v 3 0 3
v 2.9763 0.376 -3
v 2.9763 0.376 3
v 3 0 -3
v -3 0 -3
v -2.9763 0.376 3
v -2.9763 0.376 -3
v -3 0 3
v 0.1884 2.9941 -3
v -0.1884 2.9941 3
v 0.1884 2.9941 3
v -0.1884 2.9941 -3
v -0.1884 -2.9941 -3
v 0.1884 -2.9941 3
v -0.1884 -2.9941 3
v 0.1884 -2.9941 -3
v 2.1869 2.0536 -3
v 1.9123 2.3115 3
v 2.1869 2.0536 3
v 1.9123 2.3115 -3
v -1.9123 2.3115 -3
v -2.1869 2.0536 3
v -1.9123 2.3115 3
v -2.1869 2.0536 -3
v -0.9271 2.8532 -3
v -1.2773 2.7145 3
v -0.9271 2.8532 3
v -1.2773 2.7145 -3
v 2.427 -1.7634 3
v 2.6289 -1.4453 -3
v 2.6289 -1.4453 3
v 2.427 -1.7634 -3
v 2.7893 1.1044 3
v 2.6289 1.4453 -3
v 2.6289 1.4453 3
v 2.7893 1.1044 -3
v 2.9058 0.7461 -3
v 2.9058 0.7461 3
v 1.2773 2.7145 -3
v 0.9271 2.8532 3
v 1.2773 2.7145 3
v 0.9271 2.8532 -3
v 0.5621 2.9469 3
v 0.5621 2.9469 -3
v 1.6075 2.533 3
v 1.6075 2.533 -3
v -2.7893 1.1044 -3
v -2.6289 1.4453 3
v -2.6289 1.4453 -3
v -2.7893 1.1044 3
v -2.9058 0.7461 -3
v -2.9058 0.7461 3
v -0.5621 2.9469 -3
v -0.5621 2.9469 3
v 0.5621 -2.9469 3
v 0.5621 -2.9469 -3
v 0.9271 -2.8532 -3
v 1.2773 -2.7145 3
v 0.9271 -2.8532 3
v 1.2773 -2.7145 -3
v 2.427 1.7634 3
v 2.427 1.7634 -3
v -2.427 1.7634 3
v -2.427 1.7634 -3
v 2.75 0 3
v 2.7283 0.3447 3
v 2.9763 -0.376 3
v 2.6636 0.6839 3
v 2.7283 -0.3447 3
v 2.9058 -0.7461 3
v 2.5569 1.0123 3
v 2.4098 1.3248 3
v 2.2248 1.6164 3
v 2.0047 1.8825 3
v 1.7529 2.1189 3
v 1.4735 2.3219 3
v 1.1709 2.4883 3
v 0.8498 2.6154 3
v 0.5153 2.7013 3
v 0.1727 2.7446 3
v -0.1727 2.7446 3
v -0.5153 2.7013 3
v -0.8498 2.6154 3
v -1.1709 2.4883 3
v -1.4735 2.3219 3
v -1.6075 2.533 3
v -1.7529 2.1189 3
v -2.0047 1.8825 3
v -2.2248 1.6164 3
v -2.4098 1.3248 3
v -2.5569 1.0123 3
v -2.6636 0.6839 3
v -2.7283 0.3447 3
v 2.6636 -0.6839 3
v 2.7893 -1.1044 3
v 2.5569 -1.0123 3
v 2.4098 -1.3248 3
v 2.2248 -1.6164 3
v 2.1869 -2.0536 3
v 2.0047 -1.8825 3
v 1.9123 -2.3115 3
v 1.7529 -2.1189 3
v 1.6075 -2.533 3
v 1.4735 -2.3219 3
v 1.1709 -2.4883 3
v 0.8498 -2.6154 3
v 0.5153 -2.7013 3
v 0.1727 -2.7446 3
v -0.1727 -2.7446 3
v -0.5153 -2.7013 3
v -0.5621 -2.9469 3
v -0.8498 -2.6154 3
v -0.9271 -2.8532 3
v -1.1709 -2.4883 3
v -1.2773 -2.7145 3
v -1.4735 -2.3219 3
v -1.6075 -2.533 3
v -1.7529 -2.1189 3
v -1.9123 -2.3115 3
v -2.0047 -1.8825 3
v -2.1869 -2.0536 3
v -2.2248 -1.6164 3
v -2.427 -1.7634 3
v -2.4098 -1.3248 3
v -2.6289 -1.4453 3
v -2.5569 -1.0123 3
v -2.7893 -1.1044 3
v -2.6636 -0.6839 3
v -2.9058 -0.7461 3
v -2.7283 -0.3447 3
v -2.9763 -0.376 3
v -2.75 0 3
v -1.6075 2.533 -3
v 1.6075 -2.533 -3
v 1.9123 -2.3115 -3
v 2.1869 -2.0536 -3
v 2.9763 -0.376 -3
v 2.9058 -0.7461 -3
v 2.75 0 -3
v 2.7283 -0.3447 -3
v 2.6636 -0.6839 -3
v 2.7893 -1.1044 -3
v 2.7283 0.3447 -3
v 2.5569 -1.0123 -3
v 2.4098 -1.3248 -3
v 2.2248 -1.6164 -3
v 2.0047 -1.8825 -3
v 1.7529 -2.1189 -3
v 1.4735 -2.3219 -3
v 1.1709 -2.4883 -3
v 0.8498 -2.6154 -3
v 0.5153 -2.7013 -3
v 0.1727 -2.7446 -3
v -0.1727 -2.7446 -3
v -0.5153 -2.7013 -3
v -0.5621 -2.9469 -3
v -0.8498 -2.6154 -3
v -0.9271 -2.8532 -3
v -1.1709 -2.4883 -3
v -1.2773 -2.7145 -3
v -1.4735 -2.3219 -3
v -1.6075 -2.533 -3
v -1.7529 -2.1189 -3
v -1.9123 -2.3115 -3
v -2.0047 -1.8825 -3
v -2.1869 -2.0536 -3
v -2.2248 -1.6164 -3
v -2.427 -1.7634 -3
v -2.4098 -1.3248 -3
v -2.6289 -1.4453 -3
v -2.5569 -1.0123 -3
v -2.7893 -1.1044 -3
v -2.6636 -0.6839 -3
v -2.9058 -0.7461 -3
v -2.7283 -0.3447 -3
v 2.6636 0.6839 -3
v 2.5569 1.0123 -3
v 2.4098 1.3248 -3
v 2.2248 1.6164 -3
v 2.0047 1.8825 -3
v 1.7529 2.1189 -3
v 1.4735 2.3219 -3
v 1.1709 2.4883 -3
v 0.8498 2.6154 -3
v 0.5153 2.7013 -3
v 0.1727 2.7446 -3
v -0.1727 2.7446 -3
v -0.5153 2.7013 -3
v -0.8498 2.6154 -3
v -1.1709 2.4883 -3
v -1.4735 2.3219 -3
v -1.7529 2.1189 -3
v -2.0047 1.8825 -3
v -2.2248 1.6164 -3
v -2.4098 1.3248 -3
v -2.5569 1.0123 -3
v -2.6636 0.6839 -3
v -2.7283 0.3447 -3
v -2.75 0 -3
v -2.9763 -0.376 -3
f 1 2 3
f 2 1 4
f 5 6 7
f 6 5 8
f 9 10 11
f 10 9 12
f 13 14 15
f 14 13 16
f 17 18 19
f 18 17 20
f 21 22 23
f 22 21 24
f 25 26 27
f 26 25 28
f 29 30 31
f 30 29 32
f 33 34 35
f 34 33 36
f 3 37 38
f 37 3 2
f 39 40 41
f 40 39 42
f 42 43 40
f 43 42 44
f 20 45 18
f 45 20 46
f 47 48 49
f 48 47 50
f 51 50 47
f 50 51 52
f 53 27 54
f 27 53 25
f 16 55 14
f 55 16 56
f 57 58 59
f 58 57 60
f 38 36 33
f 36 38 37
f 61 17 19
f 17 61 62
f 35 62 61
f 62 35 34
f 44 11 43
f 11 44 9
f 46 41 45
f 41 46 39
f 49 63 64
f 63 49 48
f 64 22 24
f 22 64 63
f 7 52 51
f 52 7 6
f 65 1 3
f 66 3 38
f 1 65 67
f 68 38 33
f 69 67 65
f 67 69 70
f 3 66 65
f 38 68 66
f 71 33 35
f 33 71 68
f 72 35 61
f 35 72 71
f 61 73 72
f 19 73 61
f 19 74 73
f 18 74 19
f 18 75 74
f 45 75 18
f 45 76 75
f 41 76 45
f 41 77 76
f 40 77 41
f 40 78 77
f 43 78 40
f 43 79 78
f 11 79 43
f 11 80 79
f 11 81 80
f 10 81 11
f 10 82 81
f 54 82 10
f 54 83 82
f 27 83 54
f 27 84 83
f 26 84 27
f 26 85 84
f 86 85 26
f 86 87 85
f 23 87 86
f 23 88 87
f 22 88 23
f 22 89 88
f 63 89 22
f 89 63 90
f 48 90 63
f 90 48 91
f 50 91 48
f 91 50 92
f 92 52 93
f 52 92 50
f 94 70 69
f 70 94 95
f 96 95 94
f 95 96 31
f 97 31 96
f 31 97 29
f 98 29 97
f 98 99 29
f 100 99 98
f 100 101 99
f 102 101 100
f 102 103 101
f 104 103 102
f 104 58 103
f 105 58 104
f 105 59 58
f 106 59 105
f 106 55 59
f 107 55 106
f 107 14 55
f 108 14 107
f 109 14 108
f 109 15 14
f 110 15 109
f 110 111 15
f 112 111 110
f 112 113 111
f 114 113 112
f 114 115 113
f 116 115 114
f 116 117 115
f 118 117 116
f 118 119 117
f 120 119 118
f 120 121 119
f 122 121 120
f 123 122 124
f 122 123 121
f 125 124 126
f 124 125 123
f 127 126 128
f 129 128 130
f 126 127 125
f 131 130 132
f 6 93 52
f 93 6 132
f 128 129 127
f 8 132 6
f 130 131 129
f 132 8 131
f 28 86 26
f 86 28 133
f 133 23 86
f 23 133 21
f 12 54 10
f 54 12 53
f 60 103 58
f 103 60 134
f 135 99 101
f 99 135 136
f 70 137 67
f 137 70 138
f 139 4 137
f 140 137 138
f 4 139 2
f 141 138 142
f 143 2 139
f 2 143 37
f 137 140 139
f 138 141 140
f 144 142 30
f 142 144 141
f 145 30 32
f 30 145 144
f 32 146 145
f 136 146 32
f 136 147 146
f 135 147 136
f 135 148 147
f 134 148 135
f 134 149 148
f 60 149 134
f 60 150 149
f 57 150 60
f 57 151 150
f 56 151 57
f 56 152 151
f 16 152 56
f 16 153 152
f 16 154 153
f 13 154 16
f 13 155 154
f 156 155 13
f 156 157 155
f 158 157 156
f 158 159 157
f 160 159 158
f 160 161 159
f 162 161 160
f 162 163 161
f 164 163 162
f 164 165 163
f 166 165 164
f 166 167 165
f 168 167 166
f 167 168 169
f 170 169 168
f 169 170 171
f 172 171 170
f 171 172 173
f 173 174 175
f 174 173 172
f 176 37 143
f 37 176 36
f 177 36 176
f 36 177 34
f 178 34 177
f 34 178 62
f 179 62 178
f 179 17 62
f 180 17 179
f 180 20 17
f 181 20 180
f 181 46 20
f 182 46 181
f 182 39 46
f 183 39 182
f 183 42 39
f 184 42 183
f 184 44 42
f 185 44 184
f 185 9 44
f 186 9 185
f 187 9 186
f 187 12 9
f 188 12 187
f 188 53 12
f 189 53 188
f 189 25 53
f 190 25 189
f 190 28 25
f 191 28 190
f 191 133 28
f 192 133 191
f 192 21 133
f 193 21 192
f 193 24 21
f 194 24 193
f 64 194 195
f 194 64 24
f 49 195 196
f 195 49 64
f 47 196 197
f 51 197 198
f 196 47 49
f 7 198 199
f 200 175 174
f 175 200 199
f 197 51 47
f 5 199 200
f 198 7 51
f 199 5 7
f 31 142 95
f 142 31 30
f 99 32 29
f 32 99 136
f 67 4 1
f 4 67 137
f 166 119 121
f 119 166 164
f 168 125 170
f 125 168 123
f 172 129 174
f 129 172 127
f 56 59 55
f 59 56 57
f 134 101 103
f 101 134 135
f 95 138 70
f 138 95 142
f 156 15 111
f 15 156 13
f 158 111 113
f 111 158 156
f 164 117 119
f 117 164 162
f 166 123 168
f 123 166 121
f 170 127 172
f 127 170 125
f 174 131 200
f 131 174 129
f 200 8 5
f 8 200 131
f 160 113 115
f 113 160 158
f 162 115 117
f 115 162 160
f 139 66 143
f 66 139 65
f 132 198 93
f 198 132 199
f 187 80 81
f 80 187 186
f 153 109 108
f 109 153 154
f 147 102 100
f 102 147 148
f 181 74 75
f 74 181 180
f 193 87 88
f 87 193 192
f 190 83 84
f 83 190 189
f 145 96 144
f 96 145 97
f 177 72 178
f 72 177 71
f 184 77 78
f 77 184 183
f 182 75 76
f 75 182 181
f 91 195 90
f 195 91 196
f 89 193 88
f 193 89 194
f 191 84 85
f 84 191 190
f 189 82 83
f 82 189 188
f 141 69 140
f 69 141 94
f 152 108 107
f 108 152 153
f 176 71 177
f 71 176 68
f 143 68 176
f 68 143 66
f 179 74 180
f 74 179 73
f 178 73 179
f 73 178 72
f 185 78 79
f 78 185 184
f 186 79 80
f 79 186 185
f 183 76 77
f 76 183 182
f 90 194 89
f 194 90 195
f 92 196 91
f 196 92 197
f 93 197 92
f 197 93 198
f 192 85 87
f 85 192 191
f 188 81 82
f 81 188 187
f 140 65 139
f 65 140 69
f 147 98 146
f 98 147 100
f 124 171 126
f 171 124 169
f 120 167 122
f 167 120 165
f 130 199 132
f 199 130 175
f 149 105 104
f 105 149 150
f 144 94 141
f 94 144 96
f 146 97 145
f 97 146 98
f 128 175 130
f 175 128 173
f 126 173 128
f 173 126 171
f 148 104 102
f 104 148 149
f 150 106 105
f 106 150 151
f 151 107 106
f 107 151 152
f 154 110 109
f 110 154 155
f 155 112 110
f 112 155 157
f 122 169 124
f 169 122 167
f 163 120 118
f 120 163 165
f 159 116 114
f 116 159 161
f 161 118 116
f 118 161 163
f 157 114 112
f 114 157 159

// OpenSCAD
$fn = 50;


difference() {
	union() {
		translate(v = [0, 0, -3.0000000000]) {
			cylinder(h = 6, r = 3.0000000000);
		}
	}
	union() {
		translate(v = [0, 0, -100.0000000000]) {
			cylinder(h = 200, r = 2.7500000000);
		}
	}
}
